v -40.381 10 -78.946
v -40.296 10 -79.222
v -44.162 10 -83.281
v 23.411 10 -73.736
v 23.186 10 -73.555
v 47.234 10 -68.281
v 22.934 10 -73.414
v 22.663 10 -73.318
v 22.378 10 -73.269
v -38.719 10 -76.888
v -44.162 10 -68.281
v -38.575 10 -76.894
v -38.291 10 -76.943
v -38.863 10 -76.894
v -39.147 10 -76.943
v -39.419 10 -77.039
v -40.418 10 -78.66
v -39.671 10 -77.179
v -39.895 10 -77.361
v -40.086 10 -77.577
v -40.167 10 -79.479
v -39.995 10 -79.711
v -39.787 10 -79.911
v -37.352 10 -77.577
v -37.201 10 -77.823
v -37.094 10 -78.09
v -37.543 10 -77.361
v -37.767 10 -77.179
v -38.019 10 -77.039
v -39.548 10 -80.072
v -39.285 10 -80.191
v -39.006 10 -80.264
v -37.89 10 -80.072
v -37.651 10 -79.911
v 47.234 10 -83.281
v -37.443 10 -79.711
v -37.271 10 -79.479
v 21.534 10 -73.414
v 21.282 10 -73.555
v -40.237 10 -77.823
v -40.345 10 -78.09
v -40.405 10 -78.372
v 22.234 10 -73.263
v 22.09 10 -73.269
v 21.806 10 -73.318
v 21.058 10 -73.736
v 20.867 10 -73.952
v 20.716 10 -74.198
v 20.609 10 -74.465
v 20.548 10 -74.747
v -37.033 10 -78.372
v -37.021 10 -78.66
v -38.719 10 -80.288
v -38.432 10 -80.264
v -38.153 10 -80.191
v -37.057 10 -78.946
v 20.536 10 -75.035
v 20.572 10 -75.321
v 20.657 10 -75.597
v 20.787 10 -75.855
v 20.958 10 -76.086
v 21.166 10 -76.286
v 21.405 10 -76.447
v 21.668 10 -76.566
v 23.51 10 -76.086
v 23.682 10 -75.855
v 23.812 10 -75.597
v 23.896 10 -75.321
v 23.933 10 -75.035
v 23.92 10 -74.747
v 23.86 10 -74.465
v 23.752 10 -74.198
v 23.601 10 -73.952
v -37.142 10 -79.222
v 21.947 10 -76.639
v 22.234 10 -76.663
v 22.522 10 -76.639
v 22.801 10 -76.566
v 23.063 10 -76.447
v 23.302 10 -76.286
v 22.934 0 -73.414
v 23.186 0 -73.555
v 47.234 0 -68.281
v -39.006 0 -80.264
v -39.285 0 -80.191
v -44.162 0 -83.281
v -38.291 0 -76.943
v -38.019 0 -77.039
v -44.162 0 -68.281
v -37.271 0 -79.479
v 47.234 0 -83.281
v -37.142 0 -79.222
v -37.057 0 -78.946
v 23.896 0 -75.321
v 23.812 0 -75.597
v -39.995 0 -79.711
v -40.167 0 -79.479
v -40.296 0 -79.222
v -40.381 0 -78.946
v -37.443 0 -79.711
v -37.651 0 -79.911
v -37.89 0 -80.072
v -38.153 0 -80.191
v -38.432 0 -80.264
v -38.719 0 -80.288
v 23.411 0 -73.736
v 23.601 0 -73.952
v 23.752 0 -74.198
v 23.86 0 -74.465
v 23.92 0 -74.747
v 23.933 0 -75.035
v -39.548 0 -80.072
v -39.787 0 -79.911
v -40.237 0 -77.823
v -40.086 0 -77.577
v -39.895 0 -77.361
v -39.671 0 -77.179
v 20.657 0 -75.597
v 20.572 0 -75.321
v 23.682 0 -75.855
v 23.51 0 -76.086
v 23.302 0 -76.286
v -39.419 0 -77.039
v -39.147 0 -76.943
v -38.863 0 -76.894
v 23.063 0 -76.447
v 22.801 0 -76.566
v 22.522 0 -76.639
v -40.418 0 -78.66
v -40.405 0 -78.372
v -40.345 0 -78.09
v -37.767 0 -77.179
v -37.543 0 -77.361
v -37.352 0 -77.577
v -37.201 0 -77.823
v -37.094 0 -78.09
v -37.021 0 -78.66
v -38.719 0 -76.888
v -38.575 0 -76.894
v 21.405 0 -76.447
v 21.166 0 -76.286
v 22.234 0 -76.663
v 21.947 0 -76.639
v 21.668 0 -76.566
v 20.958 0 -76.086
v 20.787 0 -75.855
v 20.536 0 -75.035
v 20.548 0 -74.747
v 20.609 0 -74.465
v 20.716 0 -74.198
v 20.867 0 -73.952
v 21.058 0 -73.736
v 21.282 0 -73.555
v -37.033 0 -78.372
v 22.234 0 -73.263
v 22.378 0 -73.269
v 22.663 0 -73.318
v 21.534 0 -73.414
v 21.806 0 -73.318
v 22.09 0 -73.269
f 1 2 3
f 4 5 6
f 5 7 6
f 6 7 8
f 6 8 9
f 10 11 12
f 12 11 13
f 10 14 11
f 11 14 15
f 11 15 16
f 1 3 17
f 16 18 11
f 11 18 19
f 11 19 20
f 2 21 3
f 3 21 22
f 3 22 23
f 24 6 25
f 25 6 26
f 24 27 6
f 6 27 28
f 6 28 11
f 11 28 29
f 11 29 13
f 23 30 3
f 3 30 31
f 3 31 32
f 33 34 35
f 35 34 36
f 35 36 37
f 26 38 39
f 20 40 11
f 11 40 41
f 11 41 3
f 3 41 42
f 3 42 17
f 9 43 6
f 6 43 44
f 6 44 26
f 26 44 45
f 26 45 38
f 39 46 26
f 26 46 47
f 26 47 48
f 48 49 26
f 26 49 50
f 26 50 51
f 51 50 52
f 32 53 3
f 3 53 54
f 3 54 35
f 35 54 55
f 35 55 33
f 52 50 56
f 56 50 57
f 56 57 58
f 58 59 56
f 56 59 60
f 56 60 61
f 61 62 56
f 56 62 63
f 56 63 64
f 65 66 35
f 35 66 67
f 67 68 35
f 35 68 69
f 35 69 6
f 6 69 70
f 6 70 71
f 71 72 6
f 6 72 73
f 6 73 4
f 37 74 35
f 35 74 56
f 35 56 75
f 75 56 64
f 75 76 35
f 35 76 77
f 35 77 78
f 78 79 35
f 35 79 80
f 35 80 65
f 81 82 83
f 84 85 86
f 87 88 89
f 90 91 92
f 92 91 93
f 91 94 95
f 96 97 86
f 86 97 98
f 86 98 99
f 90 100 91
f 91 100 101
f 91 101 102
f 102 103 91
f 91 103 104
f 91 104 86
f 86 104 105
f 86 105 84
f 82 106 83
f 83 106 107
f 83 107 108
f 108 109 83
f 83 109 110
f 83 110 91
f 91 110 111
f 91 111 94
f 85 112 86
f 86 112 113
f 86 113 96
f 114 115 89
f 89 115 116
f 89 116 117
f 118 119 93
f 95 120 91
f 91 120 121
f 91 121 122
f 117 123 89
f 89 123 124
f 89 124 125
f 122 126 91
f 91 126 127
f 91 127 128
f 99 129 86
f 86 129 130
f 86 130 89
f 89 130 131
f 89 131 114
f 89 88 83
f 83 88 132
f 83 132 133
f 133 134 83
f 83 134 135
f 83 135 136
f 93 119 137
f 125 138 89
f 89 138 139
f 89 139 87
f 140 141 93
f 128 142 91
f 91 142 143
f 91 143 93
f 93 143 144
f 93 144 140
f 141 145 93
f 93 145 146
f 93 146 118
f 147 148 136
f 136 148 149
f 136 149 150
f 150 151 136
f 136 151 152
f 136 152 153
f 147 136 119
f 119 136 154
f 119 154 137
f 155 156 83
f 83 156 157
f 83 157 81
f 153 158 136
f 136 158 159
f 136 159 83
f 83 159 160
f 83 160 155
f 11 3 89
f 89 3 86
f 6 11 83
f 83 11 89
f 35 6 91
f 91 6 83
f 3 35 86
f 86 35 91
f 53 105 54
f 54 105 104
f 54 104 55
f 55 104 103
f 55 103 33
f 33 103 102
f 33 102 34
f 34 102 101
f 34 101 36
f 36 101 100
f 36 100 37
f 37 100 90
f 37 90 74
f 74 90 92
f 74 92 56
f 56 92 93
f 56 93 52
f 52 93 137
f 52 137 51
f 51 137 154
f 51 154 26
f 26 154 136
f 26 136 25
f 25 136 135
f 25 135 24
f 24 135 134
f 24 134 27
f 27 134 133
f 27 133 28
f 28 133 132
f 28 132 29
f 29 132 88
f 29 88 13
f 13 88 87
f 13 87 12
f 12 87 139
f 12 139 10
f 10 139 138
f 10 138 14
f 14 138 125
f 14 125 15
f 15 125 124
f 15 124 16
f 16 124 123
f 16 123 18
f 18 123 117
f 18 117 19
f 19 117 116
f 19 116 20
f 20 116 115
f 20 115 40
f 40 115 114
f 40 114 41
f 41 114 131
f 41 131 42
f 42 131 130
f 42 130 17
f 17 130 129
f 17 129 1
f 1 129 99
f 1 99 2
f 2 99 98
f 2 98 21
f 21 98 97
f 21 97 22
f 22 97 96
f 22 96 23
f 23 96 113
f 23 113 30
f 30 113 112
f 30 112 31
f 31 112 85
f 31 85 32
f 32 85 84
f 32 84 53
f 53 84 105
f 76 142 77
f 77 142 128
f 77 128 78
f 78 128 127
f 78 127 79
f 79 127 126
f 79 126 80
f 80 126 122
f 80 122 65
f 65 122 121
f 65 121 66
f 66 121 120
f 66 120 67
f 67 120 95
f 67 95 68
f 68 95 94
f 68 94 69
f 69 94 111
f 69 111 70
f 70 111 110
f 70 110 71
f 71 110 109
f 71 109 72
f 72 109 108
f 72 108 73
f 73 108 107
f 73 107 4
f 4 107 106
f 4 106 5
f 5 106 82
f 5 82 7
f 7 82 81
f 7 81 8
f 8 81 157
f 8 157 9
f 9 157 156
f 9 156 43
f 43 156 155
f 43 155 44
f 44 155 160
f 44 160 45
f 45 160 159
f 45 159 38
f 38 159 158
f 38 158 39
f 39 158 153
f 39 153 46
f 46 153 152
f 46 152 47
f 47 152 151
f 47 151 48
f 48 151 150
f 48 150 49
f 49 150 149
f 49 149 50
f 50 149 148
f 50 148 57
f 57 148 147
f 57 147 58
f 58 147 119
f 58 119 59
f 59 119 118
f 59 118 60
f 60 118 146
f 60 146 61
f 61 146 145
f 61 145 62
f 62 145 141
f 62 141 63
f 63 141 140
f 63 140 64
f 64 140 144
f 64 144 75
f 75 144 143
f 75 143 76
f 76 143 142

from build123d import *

# Parameters (mm, degrees)
SKETCH2_R           = 1.7
BOSS_EXTRUDE2_DEPTH = 10


with BuildPart() as part:
    # Sketch2 → Boss-Extrude2 (new body)
    with BuildSketch(Plane(origin=(0, 0, 0), x_dir=(1, 0, 0), z_dir=(0, 1, 0))):
        Polygon((-44.162144835, 83.28125), (47.234241277, 83.28125), (47.234241277, 68.28125), (14.234241277, 68.28125), (-44.162144835, 68.28125), align=None)
        with Locations((-38.719051078, 78.587953022)):
            Circle(SKETCH2_R, mode=Mode.SUBTRACT)
        with Locations((22.234241277, 74.963265867)):
            Circle(SKETCH2_R, mode=Mode.SUBTRACT)
    extrude(amount=BOSS_EXTRUDE2_DEPTH)


solid = part.part
